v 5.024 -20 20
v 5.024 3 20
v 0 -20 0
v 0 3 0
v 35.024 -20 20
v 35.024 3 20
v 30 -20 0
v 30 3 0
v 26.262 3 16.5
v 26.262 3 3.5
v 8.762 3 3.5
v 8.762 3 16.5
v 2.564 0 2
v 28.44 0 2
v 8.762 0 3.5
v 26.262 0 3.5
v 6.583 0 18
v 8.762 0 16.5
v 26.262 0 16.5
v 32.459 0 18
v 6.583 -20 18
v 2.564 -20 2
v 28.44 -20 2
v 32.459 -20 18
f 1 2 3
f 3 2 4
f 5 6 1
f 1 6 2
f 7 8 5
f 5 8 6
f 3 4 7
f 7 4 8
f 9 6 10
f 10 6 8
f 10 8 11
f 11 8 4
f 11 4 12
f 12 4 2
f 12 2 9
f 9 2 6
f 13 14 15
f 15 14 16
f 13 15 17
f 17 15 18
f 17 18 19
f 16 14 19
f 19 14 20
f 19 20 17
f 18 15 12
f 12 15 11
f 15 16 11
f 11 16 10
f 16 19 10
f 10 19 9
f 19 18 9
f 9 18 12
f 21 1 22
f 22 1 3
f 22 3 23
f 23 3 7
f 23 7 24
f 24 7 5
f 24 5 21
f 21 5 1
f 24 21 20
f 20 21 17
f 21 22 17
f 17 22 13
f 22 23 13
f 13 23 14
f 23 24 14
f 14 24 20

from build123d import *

# Parameters (mm, degrees)
EXTRUDE_1_DEPTH     = 3
SKETCH_2_W          = 17.5
SKETCH_2_H          = 13
CUT_EXTRUDE_1_DEPTH = 41.443247314
EXTRUDE_2_DEPTH     = 20


with BuildPart() as part:
    # Эскиз1 → Бобышка-Вытянуть1 (new body)
    with BuildSketch(Plane(origin=(0, 0, 0), x_dir=(1, 0, 0), z_dir=(0, 1, 0))):
        Polygon((0, 0), (30, 0), (35.02365277, -20), (5.02365277, -20), align=None)
    extrude(amount=EXTRUDE_1_DEPTH)

    # Эскиз2 → Вырез-Вытянуть1 (cut, through all)
    with BuildSketch(Plane(origin=(0, 3, 0), x_dir=(1, 0, 0), z_dir=(0, 1, 0))):
        with Locations((17.511826385, -10)):
            Rectangle(SKETCH_2_W, SKETCH_2_H)
    extrude(amount=-CUT_EXTRUDE_1_DEPTH, mode=Mode.SUBTRACT)

    # Эскиз3 → Бобышка-Вытянуть2 (add)
    with BuildSketch(Plane.XZ):
        Polygon((5.02365277, 20), (0, 0), (30, 0), (35.02365277, 20), align=None)
        Polygon((6.583415246, 18), (2.56449303, 2), (28.440237524, 2), (32.459159739, 18), align=None, mode=Mode.SUBTRACT)
    extrude(amount=EXTRUDE_2_DEPTH)


solid = part.part
